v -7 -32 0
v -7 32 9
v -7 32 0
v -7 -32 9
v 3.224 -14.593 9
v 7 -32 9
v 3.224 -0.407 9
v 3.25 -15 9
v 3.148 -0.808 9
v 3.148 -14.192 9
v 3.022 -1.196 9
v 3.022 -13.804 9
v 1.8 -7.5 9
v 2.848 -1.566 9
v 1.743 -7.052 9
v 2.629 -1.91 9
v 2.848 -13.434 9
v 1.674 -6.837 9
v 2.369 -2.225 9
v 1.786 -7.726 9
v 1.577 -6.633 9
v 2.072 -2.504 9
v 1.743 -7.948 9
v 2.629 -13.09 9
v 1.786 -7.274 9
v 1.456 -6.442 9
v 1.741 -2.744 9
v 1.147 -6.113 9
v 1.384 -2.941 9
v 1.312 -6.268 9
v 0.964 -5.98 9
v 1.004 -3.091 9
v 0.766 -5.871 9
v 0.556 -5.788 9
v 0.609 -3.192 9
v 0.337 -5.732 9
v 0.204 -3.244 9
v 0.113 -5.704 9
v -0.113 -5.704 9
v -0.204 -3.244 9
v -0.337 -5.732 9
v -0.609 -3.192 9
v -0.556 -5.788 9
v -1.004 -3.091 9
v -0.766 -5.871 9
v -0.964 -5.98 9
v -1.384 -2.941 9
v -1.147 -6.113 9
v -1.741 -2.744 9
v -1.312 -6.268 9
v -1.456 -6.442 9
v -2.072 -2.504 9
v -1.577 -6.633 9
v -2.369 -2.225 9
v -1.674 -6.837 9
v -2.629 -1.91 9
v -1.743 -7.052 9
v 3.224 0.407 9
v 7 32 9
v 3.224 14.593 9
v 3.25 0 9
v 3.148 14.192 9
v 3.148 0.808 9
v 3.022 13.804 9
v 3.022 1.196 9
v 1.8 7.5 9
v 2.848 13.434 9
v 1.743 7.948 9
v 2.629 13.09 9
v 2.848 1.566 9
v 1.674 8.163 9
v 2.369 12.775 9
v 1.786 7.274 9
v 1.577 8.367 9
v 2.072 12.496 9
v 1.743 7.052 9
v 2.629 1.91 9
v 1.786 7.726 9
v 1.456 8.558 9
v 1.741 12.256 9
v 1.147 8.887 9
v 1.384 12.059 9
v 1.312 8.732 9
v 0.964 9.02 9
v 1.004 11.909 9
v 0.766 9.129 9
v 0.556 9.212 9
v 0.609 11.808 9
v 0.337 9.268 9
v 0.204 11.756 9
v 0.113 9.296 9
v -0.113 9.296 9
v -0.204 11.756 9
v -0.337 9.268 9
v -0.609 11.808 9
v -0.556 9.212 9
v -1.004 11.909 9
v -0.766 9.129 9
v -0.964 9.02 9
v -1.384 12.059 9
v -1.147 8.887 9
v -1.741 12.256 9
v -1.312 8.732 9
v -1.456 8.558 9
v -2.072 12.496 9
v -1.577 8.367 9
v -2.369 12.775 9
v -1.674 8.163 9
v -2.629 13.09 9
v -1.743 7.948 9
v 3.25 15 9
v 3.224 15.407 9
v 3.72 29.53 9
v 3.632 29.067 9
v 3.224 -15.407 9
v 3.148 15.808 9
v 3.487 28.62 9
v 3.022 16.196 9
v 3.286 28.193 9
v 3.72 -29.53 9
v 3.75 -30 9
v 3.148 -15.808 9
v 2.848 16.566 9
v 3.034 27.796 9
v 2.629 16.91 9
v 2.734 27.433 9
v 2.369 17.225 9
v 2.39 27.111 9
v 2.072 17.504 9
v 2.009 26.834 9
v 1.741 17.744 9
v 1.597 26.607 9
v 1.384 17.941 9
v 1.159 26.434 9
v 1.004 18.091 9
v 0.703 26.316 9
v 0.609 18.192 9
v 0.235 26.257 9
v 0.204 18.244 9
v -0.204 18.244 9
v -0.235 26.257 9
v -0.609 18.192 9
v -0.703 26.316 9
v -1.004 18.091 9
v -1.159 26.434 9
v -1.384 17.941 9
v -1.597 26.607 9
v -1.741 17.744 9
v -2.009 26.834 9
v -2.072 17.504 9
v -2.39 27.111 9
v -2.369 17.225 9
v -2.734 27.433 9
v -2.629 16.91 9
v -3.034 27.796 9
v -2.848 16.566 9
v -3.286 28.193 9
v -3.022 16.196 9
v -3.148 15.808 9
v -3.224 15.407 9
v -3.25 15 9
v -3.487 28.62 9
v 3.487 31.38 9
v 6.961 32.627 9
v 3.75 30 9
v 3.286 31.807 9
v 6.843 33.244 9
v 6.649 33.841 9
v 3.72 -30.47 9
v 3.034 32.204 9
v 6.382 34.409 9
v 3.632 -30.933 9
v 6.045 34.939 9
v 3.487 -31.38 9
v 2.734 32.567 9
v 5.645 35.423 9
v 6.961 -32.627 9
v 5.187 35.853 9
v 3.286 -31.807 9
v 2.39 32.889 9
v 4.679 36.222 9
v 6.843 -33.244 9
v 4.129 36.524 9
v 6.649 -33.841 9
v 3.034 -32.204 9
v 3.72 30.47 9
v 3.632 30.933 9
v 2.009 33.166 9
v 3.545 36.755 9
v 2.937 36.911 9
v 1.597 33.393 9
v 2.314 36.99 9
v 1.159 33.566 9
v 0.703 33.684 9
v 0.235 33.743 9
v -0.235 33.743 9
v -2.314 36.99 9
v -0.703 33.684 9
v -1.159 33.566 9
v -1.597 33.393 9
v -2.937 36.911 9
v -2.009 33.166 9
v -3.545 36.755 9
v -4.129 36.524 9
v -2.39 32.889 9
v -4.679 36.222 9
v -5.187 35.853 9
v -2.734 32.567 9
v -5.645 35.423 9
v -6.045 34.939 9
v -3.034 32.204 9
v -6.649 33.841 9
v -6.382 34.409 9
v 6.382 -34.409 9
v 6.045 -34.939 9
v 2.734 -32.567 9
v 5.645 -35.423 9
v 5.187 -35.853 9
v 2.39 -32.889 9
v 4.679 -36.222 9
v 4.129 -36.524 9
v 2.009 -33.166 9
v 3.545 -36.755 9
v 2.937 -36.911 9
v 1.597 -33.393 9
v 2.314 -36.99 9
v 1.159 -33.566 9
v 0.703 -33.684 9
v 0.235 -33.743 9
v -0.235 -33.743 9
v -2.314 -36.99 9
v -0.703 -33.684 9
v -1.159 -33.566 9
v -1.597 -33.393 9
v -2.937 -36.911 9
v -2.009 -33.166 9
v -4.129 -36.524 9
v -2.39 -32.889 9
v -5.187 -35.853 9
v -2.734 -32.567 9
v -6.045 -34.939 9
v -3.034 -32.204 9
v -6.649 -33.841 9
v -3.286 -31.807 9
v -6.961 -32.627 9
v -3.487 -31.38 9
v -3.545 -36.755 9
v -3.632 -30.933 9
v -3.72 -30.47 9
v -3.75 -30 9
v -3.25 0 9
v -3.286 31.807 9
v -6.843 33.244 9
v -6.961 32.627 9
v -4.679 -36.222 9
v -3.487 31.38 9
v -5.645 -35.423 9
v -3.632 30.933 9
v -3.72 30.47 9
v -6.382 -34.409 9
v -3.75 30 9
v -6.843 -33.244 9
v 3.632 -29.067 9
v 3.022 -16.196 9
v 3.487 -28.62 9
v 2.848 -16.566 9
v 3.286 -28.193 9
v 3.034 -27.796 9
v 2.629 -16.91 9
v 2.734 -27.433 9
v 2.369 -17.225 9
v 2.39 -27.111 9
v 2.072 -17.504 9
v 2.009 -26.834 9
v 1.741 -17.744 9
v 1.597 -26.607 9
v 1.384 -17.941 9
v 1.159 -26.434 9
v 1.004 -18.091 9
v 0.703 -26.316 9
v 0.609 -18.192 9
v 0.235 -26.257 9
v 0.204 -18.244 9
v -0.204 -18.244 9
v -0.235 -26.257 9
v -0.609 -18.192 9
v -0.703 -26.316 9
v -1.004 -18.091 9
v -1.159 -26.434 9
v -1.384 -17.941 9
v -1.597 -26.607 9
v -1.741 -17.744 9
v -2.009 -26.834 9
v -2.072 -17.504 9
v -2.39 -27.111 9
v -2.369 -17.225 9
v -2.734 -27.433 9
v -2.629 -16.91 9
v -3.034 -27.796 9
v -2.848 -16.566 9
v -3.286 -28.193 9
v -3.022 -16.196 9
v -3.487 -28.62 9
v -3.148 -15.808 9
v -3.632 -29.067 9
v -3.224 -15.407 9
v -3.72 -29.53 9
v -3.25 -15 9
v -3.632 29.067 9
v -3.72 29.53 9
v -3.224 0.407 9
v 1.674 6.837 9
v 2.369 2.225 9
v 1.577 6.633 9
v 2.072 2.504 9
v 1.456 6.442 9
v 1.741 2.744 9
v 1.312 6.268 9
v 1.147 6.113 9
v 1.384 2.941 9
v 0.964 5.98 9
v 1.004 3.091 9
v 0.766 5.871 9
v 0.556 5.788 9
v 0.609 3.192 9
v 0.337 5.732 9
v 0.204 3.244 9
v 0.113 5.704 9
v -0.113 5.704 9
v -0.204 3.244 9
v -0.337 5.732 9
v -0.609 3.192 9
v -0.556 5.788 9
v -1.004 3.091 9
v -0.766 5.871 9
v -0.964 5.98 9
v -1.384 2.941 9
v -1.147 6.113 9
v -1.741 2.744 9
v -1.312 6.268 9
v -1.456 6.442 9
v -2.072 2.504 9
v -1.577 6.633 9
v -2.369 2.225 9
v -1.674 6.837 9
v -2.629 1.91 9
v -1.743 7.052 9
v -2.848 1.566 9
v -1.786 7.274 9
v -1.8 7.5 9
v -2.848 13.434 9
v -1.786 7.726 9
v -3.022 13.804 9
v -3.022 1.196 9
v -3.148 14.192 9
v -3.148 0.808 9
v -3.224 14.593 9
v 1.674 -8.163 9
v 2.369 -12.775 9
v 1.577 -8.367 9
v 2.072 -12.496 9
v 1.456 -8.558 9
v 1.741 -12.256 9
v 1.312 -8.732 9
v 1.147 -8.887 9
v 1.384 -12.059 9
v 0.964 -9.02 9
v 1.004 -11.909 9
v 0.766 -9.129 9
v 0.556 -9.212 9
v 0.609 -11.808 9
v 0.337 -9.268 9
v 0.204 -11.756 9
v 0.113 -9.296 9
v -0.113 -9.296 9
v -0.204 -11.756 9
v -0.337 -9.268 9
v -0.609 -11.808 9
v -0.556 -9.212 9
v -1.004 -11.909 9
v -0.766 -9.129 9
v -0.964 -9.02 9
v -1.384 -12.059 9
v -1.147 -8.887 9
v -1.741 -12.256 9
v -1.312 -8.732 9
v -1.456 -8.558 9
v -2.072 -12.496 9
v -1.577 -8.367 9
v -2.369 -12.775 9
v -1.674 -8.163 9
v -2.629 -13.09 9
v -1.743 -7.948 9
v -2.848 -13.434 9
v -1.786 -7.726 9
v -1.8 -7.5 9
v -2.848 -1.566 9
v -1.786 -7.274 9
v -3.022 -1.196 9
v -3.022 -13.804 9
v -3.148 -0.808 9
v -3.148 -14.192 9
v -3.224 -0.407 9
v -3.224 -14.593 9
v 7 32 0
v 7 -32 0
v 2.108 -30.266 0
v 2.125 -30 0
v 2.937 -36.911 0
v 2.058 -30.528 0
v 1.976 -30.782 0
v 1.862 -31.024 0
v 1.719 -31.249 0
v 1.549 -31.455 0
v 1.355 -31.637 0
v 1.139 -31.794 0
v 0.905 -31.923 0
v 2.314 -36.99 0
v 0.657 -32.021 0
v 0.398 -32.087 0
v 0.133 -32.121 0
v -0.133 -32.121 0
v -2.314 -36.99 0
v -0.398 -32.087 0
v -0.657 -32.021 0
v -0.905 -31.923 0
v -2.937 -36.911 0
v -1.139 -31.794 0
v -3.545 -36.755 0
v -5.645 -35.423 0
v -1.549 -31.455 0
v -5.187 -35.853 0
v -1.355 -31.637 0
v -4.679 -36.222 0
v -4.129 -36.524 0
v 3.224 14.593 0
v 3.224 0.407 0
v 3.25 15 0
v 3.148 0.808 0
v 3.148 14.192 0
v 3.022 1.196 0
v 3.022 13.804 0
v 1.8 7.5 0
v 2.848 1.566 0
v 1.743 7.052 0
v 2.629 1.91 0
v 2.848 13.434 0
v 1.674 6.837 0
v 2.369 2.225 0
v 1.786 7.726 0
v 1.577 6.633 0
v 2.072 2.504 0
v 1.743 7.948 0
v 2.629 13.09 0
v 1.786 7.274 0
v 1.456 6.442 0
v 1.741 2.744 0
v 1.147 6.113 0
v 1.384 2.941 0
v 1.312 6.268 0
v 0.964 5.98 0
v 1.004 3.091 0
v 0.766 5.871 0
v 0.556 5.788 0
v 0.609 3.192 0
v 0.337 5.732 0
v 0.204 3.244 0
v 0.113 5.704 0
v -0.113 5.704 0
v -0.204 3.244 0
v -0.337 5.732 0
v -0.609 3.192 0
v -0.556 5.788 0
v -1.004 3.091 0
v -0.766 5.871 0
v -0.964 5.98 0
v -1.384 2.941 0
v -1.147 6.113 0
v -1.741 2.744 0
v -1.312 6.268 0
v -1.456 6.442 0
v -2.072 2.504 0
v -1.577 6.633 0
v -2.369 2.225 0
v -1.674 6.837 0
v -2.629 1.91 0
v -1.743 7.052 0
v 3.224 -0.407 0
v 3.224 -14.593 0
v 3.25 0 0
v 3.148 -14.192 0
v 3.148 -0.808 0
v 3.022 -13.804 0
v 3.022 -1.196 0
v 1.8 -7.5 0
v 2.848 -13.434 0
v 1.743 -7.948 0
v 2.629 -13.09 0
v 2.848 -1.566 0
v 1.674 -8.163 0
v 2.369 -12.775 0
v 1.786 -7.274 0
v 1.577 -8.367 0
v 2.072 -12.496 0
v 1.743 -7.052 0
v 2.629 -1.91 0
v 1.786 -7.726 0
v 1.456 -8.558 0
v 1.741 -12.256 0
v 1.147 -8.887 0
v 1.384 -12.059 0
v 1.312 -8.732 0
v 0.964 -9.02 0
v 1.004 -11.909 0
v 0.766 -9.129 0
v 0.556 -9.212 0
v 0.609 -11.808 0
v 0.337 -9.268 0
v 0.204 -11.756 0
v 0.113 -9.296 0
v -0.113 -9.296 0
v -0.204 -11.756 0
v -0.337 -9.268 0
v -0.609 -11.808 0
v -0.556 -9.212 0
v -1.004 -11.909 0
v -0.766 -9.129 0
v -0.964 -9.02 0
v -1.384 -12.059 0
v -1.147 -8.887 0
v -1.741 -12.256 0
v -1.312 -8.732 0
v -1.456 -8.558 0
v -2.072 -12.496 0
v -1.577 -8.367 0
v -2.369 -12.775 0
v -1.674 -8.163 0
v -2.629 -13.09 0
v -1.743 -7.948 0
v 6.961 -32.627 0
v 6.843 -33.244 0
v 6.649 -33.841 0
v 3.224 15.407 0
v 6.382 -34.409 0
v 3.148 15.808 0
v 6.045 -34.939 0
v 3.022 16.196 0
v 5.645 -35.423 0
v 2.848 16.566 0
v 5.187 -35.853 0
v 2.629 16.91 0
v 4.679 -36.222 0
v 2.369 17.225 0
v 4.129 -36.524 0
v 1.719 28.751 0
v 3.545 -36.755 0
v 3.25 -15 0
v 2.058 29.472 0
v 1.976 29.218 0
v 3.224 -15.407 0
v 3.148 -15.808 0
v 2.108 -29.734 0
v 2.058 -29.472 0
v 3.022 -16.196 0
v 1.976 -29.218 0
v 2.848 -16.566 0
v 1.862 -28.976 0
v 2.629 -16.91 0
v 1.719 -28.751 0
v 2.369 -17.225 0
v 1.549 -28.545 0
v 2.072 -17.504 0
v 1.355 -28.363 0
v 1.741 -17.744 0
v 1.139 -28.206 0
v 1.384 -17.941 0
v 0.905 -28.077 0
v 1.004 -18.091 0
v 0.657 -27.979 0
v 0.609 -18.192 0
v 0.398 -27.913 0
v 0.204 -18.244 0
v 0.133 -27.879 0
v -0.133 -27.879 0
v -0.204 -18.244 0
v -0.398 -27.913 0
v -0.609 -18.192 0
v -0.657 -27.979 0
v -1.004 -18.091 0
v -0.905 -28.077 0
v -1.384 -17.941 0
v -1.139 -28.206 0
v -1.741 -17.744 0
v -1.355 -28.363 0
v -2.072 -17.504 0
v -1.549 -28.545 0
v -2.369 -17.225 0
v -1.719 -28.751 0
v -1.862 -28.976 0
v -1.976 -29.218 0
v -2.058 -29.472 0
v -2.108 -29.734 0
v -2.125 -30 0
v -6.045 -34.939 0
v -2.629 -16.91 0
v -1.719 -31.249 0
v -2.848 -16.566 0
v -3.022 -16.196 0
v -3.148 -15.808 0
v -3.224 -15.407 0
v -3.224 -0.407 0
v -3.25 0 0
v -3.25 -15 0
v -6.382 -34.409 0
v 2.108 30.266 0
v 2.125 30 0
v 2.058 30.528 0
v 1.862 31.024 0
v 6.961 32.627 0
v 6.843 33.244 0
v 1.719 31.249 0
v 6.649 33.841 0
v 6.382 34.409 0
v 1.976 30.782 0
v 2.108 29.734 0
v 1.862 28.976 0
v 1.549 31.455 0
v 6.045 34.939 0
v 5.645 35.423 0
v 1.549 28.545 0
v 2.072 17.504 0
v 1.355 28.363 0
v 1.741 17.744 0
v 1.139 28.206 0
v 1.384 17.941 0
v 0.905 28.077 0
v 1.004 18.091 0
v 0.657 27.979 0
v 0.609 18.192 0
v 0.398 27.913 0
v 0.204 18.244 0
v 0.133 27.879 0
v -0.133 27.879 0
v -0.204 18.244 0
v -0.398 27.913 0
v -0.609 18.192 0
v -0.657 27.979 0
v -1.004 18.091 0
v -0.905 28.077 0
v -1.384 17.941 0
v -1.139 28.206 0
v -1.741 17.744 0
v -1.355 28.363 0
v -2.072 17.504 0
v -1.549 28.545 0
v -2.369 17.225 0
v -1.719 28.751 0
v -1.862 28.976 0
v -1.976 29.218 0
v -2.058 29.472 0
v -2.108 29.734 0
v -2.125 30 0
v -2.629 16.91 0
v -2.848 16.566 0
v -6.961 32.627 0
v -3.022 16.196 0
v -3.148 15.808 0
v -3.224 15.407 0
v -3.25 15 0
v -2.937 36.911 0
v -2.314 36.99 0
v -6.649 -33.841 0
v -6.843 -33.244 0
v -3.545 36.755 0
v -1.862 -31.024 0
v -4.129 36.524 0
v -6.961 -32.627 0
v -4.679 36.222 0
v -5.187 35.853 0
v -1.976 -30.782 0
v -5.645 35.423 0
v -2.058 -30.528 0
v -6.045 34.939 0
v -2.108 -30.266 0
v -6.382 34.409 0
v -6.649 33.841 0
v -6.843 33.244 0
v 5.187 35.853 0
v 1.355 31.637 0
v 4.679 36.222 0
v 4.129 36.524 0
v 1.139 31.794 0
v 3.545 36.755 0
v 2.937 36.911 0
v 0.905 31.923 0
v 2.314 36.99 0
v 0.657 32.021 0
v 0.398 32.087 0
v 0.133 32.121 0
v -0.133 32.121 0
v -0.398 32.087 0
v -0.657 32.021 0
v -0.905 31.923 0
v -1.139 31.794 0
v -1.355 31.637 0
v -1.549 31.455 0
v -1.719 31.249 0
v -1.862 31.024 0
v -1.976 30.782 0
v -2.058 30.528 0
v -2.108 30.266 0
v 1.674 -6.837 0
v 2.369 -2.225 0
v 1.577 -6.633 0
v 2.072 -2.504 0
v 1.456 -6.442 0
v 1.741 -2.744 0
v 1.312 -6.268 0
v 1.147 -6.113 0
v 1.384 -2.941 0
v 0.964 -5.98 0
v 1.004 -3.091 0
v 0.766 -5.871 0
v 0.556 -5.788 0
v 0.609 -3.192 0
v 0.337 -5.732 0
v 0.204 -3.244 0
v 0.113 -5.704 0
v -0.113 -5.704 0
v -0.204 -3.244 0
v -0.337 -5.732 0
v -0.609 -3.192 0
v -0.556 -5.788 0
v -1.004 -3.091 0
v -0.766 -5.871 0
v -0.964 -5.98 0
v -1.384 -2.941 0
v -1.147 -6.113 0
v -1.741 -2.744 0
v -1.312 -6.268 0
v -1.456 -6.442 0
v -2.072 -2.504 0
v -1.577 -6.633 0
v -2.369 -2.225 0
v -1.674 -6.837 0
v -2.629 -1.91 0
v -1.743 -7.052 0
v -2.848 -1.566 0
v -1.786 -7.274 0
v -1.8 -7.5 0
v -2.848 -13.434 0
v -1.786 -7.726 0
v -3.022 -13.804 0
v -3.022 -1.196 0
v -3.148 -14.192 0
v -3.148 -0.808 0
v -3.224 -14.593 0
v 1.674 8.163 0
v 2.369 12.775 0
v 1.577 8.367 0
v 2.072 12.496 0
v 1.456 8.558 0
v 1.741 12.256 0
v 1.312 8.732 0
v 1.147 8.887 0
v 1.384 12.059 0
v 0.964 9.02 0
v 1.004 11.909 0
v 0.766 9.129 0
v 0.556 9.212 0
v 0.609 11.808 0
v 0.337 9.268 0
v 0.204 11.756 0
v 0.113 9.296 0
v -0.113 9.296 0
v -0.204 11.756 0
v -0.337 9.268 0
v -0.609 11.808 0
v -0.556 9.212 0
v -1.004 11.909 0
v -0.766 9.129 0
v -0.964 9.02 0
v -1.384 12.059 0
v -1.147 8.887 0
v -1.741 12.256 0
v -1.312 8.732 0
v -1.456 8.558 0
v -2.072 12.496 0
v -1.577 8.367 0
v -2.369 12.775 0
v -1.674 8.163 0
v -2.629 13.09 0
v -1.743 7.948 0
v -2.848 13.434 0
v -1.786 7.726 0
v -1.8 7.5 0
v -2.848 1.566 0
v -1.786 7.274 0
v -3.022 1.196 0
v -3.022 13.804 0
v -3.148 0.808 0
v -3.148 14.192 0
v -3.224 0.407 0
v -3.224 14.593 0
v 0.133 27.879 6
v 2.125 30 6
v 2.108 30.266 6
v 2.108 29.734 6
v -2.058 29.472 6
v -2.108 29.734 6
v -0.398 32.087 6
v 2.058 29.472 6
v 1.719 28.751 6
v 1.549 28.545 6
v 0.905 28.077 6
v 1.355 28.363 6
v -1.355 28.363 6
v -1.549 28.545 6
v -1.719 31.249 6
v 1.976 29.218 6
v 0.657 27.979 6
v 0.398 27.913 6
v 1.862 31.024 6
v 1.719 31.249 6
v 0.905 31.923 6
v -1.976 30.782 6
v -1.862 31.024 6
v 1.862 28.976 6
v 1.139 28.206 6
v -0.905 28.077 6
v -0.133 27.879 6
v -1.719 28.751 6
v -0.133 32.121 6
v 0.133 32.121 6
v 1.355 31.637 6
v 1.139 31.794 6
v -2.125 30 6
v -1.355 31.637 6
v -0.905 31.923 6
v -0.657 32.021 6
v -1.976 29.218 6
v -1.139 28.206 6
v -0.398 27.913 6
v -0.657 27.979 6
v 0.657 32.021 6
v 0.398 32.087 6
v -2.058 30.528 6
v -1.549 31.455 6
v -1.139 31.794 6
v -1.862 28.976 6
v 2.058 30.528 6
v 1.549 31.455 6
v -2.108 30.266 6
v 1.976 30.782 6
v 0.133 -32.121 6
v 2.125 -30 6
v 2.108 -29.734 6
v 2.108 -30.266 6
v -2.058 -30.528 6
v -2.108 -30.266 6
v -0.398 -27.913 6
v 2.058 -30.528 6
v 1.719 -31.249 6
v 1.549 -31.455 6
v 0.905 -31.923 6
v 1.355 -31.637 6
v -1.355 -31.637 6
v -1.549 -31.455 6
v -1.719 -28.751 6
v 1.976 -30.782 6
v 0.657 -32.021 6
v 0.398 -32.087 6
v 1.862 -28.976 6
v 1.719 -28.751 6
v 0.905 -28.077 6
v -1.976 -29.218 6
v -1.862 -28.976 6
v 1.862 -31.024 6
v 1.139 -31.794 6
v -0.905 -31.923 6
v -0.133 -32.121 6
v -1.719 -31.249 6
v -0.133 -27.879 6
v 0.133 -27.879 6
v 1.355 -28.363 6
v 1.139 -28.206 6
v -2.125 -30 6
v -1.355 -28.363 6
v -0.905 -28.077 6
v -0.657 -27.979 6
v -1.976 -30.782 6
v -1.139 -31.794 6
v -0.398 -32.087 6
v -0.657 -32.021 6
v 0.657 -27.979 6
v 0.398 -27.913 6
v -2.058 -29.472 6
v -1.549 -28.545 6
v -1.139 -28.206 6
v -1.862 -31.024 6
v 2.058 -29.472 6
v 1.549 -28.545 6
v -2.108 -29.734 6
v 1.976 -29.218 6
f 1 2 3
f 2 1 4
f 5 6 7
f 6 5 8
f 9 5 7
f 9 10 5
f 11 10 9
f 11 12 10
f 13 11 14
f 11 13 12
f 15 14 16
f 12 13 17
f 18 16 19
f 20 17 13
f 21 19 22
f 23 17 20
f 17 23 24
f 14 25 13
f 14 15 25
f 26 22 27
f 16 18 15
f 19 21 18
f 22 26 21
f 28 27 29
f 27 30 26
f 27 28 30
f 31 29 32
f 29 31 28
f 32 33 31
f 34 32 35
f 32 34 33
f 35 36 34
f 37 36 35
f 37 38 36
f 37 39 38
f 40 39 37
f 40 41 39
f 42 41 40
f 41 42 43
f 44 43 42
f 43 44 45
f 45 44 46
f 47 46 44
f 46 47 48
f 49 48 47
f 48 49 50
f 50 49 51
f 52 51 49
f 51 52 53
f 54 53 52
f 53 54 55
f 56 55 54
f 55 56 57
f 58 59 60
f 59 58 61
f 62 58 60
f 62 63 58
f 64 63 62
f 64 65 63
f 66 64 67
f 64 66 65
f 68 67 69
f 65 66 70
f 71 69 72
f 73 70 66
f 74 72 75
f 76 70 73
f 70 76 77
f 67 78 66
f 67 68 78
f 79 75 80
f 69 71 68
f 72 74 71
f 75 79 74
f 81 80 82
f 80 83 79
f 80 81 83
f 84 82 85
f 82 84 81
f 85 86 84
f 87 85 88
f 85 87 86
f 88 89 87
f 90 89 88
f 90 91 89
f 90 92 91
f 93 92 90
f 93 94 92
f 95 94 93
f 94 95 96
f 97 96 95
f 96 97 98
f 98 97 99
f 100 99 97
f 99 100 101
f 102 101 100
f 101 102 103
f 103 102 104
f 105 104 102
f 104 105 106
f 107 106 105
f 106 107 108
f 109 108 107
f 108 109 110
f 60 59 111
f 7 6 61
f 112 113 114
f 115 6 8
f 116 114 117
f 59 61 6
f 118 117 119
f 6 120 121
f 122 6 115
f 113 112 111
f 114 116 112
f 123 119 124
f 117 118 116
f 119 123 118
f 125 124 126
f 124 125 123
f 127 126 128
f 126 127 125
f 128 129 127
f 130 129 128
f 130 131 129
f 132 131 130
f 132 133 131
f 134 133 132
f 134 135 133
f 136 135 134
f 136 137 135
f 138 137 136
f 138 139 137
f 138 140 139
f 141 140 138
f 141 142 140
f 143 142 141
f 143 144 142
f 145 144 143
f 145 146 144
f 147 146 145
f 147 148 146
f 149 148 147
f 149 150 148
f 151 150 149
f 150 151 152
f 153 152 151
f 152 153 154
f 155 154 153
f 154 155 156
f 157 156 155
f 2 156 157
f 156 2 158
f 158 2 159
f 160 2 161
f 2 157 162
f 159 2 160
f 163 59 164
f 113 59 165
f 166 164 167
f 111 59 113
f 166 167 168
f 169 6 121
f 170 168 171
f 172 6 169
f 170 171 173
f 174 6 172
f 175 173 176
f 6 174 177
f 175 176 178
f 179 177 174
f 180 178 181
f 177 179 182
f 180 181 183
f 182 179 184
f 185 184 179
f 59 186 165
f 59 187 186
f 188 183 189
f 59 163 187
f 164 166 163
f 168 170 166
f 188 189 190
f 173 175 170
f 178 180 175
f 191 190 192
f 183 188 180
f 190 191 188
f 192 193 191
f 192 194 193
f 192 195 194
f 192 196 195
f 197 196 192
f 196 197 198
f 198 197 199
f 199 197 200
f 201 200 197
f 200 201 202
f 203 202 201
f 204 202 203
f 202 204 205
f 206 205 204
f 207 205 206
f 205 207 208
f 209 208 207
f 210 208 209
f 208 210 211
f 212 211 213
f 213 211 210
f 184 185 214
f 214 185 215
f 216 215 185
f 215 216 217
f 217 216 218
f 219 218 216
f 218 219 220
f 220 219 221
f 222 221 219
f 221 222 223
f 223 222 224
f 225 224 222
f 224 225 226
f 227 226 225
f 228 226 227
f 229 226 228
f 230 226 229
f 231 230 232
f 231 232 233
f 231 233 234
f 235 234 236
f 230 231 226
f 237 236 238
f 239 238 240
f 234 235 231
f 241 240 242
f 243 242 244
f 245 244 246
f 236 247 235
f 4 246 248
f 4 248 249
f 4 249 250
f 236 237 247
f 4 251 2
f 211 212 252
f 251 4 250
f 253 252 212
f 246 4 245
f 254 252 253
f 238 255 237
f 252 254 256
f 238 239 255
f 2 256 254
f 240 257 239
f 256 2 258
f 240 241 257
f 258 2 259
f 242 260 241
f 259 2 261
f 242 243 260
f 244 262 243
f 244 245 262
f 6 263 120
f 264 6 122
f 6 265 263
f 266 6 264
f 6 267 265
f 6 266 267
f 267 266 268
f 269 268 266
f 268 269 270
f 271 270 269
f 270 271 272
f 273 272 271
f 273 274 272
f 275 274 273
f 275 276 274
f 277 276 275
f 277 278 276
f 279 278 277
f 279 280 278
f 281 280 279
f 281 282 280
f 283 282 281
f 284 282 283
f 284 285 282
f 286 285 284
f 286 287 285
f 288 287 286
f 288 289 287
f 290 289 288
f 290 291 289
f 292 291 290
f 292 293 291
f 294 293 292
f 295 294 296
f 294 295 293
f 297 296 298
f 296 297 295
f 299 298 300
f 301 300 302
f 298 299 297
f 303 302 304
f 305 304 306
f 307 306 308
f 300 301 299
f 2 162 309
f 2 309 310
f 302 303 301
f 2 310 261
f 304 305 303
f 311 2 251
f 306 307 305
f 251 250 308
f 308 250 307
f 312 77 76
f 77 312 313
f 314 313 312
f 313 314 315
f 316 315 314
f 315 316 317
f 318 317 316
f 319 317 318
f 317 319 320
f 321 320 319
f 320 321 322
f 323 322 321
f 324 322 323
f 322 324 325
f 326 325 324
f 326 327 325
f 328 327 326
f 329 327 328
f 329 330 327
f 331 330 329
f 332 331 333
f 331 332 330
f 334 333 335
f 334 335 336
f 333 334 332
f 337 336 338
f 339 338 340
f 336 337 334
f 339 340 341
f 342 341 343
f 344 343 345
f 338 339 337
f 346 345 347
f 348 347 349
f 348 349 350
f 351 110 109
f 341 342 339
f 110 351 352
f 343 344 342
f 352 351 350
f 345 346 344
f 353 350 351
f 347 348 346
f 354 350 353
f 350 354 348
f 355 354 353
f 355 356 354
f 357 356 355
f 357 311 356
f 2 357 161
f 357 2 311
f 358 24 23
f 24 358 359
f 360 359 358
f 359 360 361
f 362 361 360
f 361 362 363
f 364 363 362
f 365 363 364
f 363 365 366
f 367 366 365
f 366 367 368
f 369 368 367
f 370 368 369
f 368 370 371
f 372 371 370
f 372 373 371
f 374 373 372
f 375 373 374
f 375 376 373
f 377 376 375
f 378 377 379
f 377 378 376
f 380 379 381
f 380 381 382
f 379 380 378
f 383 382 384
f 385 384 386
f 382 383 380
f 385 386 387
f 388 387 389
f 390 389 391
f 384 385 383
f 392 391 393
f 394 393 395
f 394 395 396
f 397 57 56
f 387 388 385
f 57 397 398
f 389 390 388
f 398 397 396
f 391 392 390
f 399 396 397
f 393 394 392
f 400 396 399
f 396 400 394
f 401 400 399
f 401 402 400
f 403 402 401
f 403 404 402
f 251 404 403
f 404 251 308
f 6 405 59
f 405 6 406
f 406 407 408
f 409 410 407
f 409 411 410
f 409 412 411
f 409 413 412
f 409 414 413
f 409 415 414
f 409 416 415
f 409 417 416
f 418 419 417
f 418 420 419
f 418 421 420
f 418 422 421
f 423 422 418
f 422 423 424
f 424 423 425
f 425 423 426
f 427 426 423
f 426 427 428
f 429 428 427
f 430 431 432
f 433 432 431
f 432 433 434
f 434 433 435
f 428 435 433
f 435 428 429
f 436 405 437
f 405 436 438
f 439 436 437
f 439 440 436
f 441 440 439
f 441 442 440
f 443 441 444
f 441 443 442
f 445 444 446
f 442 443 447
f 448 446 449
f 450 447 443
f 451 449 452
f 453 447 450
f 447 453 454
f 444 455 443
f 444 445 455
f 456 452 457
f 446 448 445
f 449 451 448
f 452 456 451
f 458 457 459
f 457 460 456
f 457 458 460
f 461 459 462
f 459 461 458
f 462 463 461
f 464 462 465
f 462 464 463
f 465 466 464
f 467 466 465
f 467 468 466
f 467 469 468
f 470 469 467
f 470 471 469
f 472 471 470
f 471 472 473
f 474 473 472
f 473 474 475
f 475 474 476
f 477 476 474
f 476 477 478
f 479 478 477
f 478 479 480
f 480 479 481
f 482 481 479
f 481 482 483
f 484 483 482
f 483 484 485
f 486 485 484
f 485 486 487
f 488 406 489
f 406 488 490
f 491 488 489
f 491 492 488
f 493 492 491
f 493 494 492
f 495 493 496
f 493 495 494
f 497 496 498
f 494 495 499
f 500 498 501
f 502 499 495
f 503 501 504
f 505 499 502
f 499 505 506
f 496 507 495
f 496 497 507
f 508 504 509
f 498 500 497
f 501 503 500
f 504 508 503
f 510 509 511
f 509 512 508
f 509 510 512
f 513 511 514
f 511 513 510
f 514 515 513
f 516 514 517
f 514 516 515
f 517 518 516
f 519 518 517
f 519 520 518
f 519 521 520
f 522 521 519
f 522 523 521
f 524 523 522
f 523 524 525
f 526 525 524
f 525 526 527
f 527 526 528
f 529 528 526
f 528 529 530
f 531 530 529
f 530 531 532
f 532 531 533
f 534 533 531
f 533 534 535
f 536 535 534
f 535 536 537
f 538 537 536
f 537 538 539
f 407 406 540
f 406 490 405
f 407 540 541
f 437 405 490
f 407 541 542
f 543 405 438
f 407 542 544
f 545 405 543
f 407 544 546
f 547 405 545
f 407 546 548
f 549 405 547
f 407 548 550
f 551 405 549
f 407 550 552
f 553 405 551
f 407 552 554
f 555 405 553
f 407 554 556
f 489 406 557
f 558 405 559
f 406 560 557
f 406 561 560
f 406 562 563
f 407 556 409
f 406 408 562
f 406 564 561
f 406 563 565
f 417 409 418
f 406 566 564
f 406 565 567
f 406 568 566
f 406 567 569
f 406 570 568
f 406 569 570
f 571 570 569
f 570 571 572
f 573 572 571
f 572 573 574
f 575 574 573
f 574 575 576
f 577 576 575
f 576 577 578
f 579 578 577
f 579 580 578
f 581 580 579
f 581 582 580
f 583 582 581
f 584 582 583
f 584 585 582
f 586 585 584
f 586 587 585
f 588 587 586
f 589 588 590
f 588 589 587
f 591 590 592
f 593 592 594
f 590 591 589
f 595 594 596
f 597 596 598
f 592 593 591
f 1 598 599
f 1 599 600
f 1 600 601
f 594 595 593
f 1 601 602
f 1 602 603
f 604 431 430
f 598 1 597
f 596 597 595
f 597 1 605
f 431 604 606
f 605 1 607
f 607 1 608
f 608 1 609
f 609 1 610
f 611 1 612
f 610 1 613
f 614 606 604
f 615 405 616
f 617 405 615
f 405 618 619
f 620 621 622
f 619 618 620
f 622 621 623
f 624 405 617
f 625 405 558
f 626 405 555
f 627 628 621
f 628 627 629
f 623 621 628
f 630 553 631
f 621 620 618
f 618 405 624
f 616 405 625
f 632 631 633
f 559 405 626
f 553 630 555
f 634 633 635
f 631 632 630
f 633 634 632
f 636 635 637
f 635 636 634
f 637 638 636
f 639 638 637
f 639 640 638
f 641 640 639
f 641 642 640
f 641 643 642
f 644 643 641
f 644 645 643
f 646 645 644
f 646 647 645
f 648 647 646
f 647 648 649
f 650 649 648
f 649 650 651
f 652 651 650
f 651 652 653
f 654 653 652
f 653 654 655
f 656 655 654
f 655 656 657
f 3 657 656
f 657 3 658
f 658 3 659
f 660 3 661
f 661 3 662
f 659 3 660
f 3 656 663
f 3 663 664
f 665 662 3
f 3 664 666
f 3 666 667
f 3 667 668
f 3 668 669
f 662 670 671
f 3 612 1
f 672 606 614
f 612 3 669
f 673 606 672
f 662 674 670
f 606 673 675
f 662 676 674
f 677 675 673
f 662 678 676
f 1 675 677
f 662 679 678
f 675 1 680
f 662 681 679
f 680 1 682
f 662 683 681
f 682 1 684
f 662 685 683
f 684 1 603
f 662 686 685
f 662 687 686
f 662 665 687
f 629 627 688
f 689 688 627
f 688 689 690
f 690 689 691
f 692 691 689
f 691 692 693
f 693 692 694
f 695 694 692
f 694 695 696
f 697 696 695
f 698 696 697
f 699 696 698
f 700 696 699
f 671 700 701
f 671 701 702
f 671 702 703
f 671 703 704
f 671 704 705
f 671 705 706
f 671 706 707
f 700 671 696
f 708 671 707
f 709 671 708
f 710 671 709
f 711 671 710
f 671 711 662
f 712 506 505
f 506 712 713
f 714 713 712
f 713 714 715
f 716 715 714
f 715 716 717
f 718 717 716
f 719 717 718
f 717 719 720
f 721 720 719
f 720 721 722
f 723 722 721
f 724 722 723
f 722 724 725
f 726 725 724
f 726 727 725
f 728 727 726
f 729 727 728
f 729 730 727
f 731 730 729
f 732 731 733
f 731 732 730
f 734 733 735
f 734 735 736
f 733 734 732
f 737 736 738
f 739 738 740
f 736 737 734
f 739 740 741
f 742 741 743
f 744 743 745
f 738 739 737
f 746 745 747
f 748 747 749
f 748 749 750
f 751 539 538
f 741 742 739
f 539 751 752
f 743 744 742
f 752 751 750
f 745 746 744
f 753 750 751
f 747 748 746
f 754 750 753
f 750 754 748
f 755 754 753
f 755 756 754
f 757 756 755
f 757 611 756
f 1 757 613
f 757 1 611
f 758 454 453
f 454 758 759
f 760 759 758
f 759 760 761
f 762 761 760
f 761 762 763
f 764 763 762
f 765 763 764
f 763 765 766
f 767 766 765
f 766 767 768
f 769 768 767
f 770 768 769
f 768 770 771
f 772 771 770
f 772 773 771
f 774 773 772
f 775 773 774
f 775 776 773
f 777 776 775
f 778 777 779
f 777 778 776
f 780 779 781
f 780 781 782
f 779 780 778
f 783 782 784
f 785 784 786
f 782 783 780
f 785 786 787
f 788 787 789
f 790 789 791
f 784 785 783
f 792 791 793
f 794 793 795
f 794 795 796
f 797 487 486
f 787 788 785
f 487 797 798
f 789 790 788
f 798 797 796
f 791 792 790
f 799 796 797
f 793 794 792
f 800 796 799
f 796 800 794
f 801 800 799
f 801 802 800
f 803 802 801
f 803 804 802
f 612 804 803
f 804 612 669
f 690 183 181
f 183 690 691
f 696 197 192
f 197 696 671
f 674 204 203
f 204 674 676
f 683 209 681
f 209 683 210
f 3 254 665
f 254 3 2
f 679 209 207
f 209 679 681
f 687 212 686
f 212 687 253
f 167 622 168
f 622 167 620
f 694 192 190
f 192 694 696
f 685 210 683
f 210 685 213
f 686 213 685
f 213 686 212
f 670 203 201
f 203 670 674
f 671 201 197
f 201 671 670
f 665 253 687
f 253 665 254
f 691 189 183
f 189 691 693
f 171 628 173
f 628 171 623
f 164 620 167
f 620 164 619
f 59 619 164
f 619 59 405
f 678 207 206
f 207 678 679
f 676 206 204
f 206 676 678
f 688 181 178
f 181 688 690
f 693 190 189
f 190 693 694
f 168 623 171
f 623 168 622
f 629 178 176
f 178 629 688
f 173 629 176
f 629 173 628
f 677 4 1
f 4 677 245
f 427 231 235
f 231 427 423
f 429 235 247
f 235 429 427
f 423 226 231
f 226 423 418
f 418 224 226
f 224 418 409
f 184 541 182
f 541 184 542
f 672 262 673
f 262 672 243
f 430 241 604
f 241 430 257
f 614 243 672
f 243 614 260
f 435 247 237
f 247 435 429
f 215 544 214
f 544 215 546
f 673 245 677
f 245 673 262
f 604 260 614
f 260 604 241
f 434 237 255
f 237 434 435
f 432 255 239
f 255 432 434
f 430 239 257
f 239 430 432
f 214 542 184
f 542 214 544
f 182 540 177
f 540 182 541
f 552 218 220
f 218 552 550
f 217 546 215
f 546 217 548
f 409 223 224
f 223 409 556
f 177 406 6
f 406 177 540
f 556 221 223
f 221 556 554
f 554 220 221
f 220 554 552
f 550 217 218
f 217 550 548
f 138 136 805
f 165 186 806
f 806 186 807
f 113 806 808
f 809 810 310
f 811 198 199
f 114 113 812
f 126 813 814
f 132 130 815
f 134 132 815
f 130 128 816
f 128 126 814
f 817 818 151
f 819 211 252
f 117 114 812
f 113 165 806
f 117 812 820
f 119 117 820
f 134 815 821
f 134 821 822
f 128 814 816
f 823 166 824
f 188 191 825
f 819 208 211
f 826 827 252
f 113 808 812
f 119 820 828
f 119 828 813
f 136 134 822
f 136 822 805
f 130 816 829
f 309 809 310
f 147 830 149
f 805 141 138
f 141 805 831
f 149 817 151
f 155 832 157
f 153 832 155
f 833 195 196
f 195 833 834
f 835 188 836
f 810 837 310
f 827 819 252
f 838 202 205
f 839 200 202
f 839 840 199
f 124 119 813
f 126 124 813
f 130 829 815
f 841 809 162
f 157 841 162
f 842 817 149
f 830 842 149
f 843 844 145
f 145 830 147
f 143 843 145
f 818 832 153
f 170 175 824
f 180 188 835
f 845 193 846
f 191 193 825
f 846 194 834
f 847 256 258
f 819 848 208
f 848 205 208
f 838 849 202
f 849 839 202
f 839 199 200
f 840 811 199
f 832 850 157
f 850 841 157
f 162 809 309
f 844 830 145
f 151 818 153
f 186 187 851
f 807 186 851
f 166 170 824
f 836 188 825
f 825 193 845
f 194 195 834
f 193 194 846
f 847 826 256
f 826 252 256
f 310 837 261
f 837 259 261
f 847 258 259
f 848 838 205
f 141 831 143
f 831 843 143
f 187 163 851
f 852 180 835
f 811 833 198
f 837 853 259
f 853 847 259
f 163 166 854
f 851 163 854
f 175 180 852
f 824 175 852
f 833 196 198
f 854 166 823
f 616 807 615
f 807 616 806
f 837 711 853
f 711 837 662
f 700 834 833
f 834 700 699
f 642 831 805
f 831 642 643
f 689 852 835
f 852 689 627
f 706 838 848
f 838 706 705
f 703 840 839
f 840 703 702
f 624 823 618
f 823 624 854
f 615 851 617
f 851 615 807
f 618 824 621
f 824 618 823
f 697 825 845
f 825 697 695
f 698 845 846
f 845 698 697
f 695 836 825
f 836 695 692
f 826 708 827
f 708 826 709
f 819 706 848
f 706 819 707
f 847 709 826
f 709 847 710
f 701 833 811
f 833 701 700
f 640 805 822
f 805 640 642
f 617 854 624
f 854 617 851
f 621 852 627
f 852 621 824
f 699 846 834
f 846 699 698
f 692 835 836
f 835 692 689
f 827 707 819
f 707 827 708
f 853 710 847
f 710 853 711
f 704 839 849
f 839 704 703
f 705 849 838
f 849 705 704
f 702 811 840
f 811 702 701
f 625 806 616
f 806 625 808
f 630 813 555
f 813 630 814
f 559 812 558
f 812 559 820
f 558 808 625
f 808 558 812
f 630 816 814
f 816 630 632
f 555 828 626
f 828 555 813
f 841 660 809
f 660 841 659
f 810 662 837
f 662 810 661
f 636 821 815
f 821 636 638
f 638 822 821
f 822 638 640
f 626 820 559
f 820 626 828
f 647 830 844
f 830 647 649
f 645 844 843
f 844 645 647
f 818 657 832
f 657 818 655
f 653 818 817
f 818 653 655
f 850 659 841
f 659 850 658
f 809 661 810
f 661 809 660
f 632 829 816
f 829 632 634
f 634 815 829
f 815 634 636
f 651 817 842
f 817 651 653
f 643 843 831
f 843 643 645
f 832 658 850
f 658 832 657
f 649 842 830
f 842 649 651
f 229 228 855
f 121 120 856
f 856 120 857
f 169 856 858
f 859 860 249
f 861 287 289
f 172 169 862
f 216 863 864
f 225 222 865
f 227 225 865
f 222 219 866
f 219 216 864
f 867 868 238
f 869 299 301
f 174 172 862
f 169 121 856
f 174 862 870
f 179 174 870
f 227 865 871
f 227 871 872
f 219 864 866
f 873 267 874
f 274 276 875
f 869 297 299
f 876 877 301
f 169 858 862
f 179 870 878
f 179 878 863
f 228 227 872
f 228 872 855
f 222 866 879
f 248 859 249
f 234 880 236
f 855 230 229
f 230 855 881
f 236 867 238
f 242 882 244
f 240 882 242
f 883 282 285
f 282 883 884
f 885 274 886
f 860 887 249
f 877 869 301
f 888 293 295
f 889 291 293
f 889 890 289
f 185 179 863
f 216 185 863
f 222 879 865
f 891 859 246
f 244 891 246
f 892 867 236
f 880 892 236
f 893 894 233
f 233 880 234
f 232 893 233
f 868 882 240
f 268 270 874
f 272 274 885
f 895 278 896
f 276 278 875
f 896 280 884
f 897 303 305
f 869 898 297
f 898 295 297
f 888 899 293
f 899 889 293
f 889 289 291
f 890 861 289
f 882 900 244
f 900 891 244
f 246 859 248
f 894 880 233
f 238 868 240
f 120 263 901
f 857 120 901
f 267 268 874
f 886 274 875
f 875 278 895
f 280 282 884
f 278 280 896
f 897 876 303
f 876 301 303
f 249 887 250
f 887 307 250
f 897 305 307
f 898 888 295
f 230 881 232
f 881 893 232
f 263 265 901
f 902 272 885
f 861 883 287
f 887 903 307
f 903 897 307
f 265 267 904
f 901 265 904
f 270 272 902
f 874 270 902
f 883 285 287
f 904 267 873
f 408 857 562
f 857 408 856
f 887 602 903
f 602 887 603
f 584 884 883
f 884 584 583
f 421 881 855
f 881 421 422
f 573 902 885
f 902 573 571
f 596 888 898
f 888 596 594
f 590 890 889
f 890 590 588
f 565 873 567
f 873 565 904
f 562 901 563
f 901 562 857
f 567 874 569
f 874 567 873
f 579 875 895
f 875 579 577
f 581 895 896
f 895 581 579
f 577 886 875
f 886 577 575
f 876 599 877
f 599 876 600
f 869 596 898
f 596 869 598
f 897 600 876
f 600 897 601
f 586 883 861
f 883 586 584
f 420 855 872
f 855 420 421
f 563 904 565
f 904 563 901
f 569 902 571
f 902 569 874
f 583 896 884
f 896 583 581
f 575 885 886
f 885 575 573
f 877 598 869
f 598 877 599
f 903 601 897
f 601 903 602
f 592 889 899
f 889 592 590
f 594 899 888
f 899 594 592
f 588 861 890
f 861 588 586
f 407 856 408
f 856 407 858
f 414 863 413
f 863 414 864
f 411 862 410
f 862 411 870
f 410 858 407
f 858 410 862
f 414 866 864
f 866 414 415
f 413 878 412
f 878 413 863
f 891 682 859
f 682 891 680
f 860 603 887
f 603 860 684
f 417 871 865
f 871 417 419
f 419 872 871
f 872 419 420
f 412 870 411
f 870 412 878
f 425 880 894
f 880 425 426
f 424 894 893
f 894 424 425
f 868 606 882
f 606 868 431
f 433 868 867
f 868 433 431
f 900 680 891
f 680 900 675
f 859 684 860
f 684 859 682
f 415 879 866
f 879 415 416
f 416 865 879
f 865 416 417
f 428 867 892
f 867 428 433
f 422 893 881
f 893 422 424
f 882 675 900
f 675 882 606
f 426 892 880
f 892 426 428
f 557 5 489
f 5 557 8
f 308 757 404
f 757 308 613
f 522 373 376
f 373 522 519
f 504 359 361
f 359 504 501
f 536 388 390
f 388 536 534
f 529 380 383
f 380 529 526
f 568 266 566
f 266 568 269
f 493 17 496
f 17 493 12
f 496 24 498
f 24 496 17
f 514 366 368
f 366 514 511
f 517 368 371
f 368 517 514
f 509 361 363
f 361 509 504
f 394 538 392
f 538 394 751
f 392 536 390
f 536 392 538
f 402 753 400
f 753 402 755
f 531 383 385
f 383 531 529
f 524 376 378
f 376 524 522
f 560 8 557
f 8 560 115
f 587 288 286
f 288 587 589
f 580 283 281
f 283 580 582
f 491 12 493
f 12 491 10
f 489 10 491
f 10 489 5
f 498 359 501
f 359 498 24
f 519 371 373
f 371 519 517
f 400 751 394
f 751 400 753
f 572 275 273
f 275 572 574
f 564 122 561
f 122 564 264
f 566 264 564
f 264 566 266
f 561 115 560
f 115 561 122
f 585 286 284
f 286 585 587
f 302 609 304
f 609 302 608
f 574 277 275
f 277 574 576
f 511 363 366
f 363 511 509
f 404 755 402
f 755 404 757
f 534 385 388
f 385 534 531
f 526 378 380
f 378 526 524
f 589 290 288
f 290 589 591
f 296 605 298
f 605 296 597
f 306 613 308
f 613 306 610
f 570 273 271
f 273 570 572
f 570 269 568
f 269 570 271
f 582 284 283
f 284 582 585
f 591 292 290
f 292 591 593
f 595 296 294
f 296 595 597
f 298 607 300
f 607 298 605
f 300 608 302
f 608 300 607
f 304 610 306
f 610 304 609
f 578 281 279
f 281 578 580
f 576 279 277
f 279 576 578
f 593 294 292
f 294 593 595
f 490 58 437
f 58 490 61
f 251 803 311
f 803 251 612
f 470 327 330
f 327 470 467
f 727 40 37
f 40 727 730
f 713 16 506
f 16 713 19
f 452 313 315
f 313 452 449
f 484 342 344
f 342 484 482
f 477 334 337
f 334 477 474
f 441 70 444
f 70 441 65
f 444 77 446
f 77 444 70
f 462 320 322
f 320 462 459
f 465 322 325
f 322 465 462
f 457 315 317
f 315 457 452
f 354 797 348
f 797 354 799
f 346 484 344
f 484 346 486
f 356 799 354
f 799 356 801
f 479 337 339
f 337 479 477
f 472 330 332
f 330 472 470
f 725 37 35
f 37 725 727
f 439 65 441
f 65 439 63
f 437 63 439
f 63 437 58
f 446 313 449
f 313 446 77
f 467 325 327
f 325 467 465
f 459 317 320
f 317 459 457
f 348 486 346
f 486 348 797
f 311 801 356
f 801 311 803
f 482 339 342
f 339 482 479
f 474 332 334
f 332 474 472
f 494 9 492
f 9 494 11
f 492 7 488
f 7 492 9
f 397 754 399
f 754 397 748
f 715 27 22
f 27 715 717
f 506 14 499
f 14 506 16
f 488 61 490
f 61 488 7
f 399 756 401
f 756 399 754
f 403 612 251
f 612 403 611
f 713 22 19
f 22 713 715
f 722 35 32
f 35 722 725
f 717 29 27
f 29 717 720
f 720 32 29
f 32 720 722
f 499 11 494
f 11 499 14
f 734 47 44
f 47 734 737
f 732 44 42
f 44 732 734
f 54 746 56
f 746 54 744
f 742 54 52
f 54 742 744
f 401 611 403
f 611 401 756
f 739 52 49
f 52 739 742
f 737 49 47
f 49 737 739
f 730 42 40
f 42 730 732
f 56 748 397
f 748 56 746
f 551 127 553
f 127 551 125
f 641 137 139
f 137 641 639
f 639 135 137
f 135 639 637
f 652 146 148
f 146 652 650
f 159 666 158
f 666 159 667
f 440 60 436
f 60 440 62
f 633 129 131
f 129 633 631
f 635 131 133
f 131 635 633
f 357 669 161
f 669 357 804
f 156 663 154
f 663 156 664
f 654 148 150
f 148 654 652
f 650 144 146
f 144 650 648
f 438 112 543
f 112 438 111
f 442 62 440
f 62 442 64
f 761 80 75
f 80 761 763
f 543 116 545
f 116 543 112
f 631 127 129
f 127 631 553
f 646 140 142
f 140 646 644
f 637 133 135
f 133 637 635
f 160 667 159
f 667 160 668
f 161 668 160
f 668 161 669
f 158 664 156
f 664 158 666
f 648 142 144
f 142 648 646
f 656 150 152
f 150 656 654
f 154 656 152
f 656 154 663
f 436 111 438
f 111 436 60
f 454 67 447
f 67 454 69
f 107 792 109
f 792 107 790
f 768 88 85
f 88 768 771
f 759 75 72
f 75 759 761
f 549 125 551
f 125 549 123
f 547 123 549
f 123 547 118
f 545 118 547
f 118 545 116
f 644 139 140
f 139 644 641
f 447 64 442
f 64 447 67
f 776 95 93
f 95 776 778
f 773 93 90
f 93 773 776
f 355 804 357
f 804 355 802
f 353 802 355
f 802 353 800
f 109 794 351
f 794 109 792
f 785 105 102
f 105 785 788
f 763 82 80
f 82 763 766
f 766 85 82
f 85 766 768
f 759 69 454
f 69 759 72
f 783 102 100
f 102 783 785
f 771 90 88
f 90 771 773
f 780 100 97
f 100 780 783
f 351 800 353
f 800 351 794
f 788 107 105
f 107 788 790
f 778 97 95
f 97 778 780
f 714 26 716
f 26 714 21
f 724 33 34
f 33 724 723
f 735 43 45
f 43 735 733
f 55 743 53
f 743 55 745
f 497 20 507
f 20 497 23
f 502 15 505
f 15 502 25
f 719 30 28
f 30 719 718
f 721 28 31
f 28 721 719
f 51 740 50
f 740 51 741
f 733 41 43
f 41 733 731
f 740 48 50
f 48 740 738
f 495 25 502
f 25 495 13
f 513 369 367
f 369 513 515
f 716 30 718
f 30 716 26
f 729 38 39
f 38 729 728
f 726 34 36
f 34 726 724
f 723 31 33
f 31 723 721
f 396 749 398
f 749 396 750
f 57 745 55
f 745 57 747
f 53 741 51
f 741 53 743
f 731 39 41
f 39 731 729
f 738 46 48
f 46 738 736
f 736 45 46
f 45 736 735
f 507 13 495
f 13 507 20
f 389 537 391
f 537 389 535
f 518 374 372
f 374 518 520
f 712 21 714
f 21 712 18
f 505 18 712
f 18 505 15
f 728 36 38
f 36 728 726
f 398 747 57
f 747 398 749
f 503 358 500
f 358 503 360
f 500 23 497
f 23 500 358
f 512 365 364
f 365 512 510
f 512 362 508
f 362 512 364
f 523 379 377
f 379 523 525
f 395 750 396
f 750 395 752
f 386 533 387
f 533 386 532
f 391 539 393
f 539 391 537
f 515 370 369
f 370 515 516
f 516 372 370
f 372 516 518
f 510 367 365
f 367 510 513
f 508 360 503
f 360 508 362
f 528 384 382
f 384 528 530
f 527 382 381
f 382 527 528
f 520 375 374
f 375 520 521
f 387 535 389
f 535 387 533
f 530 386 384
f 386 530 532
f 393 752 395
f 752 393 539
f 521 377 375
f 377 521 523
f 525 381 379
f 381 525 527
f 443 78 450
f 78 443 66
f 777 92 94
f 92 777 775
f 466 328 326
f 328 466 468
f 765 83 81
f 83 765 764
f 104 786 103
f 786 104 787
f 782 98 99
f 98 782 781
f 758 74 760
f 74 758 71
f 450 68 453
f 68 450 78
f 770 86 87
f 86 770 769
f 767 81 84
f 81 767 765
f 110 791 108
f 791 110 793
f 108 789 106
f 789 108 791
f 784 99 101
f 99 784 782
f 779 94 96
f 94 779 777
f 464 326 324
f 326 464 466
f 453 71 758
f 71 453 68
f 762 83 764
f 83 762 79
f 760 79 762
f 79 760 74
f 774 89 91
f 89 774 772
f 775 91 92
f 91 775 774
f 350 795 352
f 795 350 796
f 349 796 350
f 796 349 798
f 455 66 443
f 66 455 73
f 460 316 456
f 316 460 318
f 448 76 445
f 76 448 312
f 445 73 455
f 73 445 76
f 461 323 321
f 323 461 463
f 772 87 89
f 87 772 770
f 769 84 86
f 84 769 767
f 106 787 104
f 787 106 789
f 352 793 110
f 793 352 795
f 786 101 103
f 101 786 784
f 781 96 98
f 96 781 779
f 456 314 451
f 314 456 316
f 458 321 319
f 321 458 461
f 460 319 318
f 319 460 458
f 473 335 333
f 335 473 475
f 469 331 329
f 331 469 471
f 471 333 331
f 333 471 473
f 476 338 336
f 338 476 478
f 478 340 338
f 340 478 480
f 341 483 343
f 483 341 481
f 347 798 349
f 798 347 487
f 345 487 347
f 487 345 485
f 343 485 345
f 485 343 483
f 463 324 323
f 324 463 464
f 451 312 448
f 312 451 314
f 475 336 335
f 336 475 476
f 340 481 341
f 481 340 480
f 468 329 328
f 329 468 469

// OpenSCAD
$fn = 50;


difference() {
	union() {
		hull() {
			translate(v = [-2.0000000000, 17.0000000000, 0]) {
				cylinder(h = 9, r = 5);
			}
			translate(v = [2.0000000000, 17.0000000000, 0]) {
				cylinder(h = 9, r = 5);
			}
			translate(v = [-2.0000000000, -17.0000000000, 0]) {
				cylinder(h = 9, r = 5);
			}
			translate(v = [2.0000000000, -17.0000000000, 0]) {
				cylinder(h = 9, r = 5);
			}
		}
		translate(v = [0.0000000000, 22.5000000000, 0]) {
			hull() {
				translate(v = [-2.0000000000, 9.5000000000, 0]) {
					cylinder(h = 9, r = 5);
				}
				translate(v = [2.0000000000, 9.5000000000, 0]) {
					cylinder(h = 9, r = 5);
				}
				translate(v = [-2.0000000000, -9.5000000000, 0]) {
					cylinder(h = 9, r = 5);
				}
				translate(v = [2.0000000000, -9.5000000000, 0]) {
					cylinder(h = 9, r = 5);
				}
			}
		}
		translate(v = [0.0000000000, 22.5000000000, 0]) {
			hull() {
				translate(v = [-2.0000000000, 9.5000000000, 0]) {
					cylinder(h = 9, r = 5);
				}
				translate(v = [2.0000000000, 9.5000000000, 0]) {
					cylinder(h = 9, r = 5);
				}
				translate(v = [-2.0000000000, -9.5000000000, 0]) {
					cylinder(h = 9, r = 5);
				}
				translate(v = [2.0000000000, -9.5000000000, 0]) {
					cylinder(h = 9, r = 5);
				}
			}
		}
		translate(v = [0.0000000000, -22.5000000000, 0]) {
			hull() {
				translate(v = [-2.0000000000, 9.5000000000, 0]) {
					cylinder(h = 9, r = 5);
				}
				translate(v = [2.0000000000, 9.5000000000, 0]) {
					cylinder(h = 9, r = 5);
				}
				translate(v = [-2.0000000000, -9.5000000000, 0]) {
					cylinder(h = 9, r = 5);
				}
				translate(v = [2.0000000000, -9.5000000000, 0]) {
					cylinder(h = 9, r = 5);
				}
			}
		}
		translate(v = [0.0000000000, -22.5000000000, 0]) {
			hull() {
				translate(v = [-2.0000000000, 9.5000000000, 0]) {
					cylinder(h = 9, r = 5);
				}
				translate(v = [2.0000000000, 9.5000000000, 0]) {
					cylinder(h = 9, r = 5);
				}
				translate(v = [-2.0000000000, -9.5000000000, 0]) {
					cylinder(h = 9, r = 5);
				}
				translate(v = [2.0000000000, -9.5000000000, 0]) {
					cylinder(h = 9, r = 5);
				}
			}
		}
	}
	union() {
		translate(v = [0.0000000000, 30.0000000000, 9]) {
			rotate(a = [0, 0, 0]) {
				difference() {
					union() {
						#translate(v = [0, 0, -9.0000000000]) {
							cylinder(h = 9, r = 2.0000000000);
						}
						#translate(v = [0, 0, -3]) {
							cylinder(h = 3, r1 = 2.1250000000, r2 = 3.7500000000);
						}
						#translate(v = [0, 0, -9.0000000000]) {
							cylinder(h = 9, r = 2.1250000000);
						}
						#translate(v = [0, 0, -9.0000000000]) {
							cylinder(h = 9, r = 2.0000000000);
						}
					}
					union();
				}
			}
		}
		translate(v = [0.0000000000, 30.0000000000, 9]) {
			rotate(a = [0, 0, 0]) {
				difference() {
					union() {
						#translate(v = [0, 0, -9.0000000000]) {
							cylinder(h = 9, r = 2.0000000000);
						}
						#translate(v = [0, 0, -3]) {
							cylinder(h = 3, r1 = 2.1250000000, r2 = 3.7500000000);
						}
						#translate(v = [0, 0, -9.0000000000]) {
							cylinder(h = 9, r = 2.1250000000);
						}
						#translate(v = [0, 0, -9.0000000000]) {
							cylinder(h = 9, r = 2.0000000000);
						}
					}
					union();
				}
			}
		}
		translate(v = [0.0000000000, -30.0000000000, 9]) {
			rotate(a = [0, 0, 0]) {
				difference() {
					union() {
						#translate(v = [0, 0, -9.0000000000]) {
							cylinder(h = 9, r = 2.0000000000);
						}
						#translate(v = [0, 0, -3]) {
							cylinder(h = 3, r1 = 2.1250000000, r2 = 3.7500000000);
						}
						#translate(v = [0, 0, -9.0000000000]) {
							cylinder(h = 9, r = 2.1250000000);
						}
						#translate(v = [0, 0, -9.0000000000]) {
							cylinder(h = 9, r = 2.0000000000);
						}
					}
					union();
				}
			}
		}
		translate(v = [0.0000000000, -30.0000000000, 9]) {
			rotate(a = [0, 0, 0]) {
				difference() {
					union() {
						#translate(v = [0, 0, -9.0000000000]) {
							cylinder(h = 9, r = 2.0000000000);
						}
						#translate(v = [0, 0, -3]) {
							cylinder(h = 3, r1 = 2.1250000000, r2 = 3.7500000000);
						}
						#translate(v = [0, 0, -9.0000000000]) {
							cylinder(h = 9, r = 2.1250000000);
						}
						#translate(v = [0, 0, -9.0000000000]) {
							cylinder(h = 9, r = 2.0000000000);
						}
					}
					union();
				}
			}
		}
		translate(v = [0.0000000000, -15.0000000000, 0]) {
			translate(v = [0, 0, -100]) {
				cylinder(h = 200, r = 3.2500000000);
			}
		}
		translate(v = [0, 0, -100]) {
			cylinder(h = 200, r = 3.2500000000);
		}
		translate(v = [0.0000000000, 15.0000000000, 0]) {
			translate(v = [0, 0, -100]) {
				cylinder(h = 200, r = 3.2500000000);
			}
		}
		translate(v = [0.0000000000, -15.0000000000, 0]) {
			translate(v = [0, 0, -100]) {
				cylinder(h = 200, r = 1.8000000000);
			}
		}
		translate(v = [0.0000000000, -7.5000000000, 0]) {
			translate(v = [0, 0, -100]) {
				cylinder(h = 200, r = 1.8000000000);
			}
		}
		translate(v = [0, 0, -100]) {
			cylinder(h = 200, r = 1.8000000000);
		}
		translate(v = [0.0000000000, 7.5000000000, 0]) {
			translate(v = [0, 0, -100]) {
				cylinder(h = 200, r = 1.8000000000);
			}
		}
		translate(v = [0.0000000000, 15.0000000000, 0]) {
			translate(v = [0, 0, -100]) {
				cylinder(h = 200, r = 1.8000000000);
			}
		}
	}
}
